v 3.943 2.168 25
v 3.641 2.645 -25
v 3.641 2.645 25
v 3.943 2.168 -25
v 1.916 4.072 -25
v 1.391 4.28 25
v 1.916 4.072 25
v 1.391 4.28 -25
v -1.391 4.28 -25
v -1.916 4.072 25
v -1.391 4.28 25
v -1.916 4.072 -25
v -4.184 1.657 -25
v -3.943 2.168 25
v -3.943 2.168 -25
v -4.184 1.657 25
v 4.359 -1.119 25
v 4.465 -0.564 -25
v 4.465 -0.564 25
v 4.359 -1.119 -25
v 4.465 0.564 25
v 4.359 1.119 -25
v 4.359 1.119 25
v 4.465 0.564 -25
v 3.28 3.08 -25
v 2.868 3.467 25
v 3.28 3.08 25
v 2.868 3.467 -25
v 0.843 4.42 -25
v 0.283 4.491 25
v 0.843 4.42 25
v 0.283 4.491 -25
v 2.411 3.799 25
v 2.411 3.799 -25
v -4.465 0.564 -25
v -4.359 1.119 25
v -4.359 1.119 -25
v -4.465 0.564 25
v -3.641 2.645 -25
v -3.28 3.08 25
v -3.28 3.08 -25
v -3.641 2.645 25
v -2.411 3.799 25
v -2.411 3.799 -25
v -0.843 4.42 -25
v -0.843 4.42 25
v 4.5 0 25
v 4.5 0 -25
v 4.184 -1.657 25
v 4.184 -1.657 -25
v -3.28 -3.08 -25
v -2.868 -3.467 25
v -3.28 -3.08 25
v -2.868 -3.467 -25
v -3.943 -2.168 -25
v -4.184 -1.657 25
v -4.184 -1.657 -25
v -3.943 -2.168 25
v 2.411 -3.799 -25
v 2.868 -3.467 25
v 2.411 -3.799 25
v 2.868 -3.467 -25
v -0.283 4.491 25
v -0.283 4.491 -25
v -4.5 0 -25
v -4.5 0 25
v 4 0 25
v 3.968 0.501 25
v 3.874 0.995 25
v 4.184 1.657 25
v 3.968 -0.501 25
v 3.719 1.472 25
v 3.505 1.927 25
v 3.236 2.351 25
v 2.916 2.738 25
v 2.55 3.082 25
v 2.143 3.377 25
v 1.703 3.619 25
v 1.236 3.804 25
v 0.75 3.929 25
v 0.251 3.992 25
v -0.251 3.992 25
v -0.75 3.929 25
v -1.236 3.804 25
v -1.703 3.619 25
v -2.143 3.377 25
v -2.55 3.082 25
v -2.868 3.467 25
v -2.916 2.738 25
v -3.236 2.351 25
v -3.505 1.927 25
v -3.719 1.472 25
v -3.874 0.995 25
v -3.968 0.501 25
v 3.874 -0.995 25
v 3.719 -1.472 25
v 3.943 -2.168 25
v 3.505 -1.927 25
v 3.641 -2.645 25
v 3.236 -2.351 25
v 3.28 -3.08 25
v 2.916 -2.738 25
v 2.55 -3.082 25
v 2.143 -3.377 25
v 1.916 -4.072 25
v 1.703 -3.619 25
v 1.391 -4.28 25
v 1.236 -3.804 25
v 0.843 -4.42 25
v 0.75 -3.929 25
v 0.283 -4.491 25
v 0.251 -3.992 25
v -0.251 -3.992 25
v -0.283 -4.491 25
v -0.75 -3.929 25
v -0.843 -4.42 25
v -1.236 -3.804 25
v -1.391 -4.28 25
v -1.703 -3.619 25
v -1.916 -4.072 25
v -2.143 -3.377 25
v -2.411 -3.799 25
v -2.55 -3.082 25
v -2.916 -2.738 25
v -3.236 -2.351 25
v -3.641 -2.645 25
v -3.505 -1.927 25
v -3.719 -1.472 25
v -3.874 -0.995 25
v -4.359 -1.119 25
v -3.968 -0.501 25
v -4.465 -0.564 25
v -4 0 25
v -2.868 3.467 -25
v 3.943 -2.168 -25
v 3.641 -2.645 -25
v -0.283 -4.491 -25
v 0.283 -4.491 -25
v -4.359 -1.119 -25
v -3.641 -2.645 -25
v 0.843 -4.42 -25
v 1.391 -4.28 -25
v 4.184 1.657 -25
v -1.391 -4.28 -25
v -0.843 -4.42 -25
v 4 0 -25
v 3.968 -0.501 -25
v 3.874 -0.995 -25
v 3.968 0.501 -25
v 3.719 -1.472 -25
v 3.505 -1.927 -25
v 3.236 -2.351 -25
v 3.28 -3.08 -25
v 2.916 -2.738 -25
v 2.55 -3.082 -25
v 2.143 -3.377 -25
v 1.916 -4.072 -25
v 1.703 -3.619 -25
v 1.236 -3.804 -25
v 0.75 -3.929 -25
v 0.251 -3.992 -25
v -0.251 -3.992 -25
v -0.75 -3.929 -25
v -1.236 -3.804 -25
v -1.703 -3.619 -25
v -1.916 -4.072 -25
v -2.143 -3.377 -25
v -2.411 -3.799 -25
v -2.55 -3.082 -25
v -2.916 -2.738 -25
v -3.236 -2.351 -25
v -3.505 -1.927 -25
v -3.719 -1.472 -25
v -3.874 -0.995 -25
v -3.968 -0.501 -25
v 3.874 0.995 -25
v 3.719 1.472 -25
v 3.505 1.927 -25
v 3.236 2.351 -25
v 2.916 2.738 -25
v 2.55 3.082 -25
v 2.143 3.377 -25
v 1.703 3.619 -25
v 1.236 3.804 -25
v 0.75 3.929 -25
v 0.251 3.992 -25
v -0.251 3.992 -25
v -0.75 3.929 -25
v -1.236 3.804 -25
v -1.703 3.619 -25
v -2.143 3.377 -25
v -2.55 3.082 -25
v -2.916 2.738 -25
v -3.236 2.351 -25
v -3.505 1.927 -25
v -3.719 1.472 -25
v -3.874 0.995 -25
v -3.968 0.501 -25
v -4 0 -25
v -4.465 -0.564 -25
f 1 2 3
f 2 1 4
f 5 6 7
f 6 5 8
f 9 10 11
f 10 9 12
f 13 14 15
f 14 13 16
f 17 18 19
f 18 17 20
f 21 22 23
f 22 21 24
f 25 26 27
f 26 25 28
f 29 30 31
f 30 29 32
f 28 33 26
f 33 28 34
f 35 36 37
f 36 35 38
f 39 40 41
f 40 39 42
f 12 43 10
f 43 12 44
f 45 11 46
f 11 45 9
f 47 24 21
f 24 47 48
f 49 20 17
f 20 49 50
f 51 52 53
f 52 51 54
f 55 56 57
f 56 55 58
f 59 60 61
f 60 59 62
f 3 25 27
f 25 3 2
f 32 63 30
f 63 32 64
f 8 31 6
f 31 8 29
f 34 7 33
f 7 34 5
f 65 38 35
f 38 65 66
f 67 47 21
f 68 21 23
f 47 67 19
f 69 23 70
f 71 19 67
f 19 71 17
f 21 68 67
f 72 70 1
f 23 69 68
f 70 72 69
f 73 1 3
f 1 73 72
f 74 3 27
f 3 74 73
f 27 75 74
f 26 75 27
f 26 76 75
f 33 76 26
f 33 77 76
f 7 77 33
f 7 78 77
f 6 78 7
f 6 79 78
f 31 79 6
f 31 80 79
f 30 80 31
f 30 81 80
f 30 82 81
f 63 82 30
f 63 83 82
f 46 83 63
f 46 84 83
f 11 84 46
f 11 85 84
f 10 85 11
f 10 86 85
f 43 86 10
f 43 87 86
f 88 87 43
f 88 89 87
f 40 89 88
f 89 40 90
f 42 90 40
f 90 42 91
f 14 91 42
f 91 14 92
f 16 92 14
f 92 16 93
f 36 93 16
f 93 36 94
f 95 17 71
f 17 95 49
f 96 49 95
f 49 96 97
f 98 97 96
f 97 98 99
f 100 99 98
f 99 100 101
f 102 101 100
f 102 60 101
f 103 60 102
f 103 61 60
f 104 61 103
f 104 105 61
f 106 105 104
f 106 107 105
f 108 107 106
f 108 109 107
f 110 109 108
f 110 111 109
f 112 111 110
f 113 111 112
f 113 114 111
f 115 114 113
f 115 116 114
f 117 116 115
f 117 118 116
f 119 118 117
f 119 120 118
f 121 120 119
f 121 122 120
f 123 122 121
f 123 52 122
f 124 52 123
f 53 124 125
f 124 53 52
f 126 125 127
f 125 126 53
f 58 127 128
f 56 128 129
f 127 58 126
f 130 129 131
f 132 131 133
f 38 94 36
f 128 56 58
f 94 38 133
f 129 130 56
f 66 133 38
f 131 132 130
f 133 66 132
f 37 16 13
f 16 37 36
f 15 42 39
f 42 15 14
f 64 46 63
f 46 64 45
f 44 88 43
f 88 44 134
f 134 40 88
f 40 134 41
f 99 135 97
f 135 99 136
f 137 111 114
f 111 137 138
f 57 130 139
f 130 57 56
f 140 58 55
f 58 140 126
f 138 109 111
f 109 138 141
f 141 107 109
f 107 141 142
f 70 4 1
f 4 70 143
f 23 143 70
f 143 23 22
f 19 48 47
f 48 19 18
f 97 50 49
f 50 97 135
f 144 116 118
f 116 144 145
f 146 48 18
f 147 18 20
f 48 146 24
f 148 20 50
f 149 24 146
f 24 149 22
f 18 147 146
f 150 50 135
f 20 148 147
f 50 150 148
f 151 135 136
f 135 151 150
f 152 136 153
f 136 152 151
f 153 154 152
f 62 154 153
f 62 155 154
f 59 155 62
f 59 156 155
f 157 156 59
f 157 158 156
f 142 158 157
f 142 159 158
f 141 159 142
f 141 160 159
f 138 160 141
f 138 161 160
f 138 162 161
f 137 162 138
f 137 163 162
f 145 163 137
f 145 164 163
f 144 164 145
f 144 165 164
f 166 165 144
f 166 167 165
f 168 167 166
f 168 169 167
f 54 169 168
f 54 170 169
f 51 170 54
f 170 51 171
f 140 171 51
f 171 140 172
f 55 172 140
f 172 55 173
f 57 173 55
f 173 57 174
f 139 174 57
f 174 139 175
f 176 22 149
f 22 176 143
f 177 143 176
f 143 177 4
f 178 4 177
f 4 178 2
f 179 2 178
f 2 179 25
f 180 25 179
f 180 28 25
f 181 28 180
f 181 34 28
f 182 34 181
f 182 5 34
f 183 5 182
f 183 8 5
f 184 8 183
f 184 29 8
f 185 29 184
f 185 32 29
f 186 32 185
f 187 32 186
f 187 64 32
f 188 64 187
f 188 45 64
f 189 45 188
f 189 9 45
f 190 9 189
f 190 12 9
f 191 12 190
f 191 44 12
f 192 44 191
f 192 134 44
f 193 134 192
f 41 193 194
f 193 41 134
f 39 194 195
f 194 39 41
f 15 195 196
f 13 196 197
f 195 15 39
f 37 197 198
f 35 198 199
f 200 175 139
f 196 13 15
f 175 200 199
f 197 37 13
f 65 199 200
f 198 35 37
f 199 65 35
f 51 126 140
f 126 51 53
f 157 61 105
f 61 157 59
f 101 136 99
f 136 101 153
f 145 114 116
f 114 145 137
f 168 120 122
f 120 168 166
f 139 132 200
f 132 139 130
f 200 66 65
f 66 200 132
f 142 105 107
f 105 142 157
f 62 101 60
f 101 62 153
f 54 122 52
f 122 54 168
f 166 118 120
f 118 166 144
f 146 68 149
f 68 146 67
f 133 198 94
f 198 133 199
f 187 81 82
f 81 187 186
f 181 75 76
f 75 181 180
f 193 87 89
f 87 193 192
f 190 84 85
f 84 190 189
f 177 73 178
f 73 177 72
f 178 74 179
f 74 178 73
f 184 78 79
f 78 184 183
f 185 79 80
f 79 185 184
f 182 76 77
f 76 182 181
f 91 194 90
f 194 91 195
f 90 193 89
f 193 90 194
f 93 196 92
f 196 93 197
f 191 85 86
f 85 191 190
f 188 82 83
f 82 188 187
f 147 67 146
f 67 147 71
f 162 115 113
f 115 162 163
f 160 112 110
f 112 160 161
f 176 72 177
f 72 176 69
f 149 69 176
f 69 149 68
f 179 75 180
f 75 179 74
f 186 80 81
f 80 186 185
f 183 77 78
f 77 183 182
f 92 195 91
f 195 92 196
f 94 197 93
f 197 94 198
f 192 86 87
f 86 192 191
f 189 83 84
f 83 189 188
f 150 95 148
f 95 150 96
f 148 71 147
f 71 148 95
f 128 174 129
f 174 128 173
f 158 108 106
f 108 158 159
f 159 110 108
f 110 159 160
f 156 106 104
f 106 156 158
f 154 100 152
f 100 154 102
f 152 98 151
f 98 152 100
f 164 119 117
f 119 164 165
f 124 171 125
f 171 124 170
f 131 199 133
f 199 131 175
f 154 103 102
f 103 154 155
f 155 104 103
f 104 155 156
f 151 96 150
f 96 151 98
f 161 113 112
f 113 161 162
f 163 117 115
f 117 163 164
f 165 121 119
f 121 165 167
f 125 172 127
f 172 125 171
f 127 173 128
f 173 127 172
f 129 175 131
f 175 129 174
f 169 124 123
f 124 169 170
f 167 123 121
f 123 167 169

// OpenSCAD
$fn = 50;


difference() {
	union() {
		translate(v = [0, 0, -25.0000000000]) {
			cylinder(h = 50, r = 4.5000000000);
		}
	}
	union() {
		translate(v = [0, 0, -100.0000000000]) {
			cylinder(h = 200, r = 4);
		}
	}
}
